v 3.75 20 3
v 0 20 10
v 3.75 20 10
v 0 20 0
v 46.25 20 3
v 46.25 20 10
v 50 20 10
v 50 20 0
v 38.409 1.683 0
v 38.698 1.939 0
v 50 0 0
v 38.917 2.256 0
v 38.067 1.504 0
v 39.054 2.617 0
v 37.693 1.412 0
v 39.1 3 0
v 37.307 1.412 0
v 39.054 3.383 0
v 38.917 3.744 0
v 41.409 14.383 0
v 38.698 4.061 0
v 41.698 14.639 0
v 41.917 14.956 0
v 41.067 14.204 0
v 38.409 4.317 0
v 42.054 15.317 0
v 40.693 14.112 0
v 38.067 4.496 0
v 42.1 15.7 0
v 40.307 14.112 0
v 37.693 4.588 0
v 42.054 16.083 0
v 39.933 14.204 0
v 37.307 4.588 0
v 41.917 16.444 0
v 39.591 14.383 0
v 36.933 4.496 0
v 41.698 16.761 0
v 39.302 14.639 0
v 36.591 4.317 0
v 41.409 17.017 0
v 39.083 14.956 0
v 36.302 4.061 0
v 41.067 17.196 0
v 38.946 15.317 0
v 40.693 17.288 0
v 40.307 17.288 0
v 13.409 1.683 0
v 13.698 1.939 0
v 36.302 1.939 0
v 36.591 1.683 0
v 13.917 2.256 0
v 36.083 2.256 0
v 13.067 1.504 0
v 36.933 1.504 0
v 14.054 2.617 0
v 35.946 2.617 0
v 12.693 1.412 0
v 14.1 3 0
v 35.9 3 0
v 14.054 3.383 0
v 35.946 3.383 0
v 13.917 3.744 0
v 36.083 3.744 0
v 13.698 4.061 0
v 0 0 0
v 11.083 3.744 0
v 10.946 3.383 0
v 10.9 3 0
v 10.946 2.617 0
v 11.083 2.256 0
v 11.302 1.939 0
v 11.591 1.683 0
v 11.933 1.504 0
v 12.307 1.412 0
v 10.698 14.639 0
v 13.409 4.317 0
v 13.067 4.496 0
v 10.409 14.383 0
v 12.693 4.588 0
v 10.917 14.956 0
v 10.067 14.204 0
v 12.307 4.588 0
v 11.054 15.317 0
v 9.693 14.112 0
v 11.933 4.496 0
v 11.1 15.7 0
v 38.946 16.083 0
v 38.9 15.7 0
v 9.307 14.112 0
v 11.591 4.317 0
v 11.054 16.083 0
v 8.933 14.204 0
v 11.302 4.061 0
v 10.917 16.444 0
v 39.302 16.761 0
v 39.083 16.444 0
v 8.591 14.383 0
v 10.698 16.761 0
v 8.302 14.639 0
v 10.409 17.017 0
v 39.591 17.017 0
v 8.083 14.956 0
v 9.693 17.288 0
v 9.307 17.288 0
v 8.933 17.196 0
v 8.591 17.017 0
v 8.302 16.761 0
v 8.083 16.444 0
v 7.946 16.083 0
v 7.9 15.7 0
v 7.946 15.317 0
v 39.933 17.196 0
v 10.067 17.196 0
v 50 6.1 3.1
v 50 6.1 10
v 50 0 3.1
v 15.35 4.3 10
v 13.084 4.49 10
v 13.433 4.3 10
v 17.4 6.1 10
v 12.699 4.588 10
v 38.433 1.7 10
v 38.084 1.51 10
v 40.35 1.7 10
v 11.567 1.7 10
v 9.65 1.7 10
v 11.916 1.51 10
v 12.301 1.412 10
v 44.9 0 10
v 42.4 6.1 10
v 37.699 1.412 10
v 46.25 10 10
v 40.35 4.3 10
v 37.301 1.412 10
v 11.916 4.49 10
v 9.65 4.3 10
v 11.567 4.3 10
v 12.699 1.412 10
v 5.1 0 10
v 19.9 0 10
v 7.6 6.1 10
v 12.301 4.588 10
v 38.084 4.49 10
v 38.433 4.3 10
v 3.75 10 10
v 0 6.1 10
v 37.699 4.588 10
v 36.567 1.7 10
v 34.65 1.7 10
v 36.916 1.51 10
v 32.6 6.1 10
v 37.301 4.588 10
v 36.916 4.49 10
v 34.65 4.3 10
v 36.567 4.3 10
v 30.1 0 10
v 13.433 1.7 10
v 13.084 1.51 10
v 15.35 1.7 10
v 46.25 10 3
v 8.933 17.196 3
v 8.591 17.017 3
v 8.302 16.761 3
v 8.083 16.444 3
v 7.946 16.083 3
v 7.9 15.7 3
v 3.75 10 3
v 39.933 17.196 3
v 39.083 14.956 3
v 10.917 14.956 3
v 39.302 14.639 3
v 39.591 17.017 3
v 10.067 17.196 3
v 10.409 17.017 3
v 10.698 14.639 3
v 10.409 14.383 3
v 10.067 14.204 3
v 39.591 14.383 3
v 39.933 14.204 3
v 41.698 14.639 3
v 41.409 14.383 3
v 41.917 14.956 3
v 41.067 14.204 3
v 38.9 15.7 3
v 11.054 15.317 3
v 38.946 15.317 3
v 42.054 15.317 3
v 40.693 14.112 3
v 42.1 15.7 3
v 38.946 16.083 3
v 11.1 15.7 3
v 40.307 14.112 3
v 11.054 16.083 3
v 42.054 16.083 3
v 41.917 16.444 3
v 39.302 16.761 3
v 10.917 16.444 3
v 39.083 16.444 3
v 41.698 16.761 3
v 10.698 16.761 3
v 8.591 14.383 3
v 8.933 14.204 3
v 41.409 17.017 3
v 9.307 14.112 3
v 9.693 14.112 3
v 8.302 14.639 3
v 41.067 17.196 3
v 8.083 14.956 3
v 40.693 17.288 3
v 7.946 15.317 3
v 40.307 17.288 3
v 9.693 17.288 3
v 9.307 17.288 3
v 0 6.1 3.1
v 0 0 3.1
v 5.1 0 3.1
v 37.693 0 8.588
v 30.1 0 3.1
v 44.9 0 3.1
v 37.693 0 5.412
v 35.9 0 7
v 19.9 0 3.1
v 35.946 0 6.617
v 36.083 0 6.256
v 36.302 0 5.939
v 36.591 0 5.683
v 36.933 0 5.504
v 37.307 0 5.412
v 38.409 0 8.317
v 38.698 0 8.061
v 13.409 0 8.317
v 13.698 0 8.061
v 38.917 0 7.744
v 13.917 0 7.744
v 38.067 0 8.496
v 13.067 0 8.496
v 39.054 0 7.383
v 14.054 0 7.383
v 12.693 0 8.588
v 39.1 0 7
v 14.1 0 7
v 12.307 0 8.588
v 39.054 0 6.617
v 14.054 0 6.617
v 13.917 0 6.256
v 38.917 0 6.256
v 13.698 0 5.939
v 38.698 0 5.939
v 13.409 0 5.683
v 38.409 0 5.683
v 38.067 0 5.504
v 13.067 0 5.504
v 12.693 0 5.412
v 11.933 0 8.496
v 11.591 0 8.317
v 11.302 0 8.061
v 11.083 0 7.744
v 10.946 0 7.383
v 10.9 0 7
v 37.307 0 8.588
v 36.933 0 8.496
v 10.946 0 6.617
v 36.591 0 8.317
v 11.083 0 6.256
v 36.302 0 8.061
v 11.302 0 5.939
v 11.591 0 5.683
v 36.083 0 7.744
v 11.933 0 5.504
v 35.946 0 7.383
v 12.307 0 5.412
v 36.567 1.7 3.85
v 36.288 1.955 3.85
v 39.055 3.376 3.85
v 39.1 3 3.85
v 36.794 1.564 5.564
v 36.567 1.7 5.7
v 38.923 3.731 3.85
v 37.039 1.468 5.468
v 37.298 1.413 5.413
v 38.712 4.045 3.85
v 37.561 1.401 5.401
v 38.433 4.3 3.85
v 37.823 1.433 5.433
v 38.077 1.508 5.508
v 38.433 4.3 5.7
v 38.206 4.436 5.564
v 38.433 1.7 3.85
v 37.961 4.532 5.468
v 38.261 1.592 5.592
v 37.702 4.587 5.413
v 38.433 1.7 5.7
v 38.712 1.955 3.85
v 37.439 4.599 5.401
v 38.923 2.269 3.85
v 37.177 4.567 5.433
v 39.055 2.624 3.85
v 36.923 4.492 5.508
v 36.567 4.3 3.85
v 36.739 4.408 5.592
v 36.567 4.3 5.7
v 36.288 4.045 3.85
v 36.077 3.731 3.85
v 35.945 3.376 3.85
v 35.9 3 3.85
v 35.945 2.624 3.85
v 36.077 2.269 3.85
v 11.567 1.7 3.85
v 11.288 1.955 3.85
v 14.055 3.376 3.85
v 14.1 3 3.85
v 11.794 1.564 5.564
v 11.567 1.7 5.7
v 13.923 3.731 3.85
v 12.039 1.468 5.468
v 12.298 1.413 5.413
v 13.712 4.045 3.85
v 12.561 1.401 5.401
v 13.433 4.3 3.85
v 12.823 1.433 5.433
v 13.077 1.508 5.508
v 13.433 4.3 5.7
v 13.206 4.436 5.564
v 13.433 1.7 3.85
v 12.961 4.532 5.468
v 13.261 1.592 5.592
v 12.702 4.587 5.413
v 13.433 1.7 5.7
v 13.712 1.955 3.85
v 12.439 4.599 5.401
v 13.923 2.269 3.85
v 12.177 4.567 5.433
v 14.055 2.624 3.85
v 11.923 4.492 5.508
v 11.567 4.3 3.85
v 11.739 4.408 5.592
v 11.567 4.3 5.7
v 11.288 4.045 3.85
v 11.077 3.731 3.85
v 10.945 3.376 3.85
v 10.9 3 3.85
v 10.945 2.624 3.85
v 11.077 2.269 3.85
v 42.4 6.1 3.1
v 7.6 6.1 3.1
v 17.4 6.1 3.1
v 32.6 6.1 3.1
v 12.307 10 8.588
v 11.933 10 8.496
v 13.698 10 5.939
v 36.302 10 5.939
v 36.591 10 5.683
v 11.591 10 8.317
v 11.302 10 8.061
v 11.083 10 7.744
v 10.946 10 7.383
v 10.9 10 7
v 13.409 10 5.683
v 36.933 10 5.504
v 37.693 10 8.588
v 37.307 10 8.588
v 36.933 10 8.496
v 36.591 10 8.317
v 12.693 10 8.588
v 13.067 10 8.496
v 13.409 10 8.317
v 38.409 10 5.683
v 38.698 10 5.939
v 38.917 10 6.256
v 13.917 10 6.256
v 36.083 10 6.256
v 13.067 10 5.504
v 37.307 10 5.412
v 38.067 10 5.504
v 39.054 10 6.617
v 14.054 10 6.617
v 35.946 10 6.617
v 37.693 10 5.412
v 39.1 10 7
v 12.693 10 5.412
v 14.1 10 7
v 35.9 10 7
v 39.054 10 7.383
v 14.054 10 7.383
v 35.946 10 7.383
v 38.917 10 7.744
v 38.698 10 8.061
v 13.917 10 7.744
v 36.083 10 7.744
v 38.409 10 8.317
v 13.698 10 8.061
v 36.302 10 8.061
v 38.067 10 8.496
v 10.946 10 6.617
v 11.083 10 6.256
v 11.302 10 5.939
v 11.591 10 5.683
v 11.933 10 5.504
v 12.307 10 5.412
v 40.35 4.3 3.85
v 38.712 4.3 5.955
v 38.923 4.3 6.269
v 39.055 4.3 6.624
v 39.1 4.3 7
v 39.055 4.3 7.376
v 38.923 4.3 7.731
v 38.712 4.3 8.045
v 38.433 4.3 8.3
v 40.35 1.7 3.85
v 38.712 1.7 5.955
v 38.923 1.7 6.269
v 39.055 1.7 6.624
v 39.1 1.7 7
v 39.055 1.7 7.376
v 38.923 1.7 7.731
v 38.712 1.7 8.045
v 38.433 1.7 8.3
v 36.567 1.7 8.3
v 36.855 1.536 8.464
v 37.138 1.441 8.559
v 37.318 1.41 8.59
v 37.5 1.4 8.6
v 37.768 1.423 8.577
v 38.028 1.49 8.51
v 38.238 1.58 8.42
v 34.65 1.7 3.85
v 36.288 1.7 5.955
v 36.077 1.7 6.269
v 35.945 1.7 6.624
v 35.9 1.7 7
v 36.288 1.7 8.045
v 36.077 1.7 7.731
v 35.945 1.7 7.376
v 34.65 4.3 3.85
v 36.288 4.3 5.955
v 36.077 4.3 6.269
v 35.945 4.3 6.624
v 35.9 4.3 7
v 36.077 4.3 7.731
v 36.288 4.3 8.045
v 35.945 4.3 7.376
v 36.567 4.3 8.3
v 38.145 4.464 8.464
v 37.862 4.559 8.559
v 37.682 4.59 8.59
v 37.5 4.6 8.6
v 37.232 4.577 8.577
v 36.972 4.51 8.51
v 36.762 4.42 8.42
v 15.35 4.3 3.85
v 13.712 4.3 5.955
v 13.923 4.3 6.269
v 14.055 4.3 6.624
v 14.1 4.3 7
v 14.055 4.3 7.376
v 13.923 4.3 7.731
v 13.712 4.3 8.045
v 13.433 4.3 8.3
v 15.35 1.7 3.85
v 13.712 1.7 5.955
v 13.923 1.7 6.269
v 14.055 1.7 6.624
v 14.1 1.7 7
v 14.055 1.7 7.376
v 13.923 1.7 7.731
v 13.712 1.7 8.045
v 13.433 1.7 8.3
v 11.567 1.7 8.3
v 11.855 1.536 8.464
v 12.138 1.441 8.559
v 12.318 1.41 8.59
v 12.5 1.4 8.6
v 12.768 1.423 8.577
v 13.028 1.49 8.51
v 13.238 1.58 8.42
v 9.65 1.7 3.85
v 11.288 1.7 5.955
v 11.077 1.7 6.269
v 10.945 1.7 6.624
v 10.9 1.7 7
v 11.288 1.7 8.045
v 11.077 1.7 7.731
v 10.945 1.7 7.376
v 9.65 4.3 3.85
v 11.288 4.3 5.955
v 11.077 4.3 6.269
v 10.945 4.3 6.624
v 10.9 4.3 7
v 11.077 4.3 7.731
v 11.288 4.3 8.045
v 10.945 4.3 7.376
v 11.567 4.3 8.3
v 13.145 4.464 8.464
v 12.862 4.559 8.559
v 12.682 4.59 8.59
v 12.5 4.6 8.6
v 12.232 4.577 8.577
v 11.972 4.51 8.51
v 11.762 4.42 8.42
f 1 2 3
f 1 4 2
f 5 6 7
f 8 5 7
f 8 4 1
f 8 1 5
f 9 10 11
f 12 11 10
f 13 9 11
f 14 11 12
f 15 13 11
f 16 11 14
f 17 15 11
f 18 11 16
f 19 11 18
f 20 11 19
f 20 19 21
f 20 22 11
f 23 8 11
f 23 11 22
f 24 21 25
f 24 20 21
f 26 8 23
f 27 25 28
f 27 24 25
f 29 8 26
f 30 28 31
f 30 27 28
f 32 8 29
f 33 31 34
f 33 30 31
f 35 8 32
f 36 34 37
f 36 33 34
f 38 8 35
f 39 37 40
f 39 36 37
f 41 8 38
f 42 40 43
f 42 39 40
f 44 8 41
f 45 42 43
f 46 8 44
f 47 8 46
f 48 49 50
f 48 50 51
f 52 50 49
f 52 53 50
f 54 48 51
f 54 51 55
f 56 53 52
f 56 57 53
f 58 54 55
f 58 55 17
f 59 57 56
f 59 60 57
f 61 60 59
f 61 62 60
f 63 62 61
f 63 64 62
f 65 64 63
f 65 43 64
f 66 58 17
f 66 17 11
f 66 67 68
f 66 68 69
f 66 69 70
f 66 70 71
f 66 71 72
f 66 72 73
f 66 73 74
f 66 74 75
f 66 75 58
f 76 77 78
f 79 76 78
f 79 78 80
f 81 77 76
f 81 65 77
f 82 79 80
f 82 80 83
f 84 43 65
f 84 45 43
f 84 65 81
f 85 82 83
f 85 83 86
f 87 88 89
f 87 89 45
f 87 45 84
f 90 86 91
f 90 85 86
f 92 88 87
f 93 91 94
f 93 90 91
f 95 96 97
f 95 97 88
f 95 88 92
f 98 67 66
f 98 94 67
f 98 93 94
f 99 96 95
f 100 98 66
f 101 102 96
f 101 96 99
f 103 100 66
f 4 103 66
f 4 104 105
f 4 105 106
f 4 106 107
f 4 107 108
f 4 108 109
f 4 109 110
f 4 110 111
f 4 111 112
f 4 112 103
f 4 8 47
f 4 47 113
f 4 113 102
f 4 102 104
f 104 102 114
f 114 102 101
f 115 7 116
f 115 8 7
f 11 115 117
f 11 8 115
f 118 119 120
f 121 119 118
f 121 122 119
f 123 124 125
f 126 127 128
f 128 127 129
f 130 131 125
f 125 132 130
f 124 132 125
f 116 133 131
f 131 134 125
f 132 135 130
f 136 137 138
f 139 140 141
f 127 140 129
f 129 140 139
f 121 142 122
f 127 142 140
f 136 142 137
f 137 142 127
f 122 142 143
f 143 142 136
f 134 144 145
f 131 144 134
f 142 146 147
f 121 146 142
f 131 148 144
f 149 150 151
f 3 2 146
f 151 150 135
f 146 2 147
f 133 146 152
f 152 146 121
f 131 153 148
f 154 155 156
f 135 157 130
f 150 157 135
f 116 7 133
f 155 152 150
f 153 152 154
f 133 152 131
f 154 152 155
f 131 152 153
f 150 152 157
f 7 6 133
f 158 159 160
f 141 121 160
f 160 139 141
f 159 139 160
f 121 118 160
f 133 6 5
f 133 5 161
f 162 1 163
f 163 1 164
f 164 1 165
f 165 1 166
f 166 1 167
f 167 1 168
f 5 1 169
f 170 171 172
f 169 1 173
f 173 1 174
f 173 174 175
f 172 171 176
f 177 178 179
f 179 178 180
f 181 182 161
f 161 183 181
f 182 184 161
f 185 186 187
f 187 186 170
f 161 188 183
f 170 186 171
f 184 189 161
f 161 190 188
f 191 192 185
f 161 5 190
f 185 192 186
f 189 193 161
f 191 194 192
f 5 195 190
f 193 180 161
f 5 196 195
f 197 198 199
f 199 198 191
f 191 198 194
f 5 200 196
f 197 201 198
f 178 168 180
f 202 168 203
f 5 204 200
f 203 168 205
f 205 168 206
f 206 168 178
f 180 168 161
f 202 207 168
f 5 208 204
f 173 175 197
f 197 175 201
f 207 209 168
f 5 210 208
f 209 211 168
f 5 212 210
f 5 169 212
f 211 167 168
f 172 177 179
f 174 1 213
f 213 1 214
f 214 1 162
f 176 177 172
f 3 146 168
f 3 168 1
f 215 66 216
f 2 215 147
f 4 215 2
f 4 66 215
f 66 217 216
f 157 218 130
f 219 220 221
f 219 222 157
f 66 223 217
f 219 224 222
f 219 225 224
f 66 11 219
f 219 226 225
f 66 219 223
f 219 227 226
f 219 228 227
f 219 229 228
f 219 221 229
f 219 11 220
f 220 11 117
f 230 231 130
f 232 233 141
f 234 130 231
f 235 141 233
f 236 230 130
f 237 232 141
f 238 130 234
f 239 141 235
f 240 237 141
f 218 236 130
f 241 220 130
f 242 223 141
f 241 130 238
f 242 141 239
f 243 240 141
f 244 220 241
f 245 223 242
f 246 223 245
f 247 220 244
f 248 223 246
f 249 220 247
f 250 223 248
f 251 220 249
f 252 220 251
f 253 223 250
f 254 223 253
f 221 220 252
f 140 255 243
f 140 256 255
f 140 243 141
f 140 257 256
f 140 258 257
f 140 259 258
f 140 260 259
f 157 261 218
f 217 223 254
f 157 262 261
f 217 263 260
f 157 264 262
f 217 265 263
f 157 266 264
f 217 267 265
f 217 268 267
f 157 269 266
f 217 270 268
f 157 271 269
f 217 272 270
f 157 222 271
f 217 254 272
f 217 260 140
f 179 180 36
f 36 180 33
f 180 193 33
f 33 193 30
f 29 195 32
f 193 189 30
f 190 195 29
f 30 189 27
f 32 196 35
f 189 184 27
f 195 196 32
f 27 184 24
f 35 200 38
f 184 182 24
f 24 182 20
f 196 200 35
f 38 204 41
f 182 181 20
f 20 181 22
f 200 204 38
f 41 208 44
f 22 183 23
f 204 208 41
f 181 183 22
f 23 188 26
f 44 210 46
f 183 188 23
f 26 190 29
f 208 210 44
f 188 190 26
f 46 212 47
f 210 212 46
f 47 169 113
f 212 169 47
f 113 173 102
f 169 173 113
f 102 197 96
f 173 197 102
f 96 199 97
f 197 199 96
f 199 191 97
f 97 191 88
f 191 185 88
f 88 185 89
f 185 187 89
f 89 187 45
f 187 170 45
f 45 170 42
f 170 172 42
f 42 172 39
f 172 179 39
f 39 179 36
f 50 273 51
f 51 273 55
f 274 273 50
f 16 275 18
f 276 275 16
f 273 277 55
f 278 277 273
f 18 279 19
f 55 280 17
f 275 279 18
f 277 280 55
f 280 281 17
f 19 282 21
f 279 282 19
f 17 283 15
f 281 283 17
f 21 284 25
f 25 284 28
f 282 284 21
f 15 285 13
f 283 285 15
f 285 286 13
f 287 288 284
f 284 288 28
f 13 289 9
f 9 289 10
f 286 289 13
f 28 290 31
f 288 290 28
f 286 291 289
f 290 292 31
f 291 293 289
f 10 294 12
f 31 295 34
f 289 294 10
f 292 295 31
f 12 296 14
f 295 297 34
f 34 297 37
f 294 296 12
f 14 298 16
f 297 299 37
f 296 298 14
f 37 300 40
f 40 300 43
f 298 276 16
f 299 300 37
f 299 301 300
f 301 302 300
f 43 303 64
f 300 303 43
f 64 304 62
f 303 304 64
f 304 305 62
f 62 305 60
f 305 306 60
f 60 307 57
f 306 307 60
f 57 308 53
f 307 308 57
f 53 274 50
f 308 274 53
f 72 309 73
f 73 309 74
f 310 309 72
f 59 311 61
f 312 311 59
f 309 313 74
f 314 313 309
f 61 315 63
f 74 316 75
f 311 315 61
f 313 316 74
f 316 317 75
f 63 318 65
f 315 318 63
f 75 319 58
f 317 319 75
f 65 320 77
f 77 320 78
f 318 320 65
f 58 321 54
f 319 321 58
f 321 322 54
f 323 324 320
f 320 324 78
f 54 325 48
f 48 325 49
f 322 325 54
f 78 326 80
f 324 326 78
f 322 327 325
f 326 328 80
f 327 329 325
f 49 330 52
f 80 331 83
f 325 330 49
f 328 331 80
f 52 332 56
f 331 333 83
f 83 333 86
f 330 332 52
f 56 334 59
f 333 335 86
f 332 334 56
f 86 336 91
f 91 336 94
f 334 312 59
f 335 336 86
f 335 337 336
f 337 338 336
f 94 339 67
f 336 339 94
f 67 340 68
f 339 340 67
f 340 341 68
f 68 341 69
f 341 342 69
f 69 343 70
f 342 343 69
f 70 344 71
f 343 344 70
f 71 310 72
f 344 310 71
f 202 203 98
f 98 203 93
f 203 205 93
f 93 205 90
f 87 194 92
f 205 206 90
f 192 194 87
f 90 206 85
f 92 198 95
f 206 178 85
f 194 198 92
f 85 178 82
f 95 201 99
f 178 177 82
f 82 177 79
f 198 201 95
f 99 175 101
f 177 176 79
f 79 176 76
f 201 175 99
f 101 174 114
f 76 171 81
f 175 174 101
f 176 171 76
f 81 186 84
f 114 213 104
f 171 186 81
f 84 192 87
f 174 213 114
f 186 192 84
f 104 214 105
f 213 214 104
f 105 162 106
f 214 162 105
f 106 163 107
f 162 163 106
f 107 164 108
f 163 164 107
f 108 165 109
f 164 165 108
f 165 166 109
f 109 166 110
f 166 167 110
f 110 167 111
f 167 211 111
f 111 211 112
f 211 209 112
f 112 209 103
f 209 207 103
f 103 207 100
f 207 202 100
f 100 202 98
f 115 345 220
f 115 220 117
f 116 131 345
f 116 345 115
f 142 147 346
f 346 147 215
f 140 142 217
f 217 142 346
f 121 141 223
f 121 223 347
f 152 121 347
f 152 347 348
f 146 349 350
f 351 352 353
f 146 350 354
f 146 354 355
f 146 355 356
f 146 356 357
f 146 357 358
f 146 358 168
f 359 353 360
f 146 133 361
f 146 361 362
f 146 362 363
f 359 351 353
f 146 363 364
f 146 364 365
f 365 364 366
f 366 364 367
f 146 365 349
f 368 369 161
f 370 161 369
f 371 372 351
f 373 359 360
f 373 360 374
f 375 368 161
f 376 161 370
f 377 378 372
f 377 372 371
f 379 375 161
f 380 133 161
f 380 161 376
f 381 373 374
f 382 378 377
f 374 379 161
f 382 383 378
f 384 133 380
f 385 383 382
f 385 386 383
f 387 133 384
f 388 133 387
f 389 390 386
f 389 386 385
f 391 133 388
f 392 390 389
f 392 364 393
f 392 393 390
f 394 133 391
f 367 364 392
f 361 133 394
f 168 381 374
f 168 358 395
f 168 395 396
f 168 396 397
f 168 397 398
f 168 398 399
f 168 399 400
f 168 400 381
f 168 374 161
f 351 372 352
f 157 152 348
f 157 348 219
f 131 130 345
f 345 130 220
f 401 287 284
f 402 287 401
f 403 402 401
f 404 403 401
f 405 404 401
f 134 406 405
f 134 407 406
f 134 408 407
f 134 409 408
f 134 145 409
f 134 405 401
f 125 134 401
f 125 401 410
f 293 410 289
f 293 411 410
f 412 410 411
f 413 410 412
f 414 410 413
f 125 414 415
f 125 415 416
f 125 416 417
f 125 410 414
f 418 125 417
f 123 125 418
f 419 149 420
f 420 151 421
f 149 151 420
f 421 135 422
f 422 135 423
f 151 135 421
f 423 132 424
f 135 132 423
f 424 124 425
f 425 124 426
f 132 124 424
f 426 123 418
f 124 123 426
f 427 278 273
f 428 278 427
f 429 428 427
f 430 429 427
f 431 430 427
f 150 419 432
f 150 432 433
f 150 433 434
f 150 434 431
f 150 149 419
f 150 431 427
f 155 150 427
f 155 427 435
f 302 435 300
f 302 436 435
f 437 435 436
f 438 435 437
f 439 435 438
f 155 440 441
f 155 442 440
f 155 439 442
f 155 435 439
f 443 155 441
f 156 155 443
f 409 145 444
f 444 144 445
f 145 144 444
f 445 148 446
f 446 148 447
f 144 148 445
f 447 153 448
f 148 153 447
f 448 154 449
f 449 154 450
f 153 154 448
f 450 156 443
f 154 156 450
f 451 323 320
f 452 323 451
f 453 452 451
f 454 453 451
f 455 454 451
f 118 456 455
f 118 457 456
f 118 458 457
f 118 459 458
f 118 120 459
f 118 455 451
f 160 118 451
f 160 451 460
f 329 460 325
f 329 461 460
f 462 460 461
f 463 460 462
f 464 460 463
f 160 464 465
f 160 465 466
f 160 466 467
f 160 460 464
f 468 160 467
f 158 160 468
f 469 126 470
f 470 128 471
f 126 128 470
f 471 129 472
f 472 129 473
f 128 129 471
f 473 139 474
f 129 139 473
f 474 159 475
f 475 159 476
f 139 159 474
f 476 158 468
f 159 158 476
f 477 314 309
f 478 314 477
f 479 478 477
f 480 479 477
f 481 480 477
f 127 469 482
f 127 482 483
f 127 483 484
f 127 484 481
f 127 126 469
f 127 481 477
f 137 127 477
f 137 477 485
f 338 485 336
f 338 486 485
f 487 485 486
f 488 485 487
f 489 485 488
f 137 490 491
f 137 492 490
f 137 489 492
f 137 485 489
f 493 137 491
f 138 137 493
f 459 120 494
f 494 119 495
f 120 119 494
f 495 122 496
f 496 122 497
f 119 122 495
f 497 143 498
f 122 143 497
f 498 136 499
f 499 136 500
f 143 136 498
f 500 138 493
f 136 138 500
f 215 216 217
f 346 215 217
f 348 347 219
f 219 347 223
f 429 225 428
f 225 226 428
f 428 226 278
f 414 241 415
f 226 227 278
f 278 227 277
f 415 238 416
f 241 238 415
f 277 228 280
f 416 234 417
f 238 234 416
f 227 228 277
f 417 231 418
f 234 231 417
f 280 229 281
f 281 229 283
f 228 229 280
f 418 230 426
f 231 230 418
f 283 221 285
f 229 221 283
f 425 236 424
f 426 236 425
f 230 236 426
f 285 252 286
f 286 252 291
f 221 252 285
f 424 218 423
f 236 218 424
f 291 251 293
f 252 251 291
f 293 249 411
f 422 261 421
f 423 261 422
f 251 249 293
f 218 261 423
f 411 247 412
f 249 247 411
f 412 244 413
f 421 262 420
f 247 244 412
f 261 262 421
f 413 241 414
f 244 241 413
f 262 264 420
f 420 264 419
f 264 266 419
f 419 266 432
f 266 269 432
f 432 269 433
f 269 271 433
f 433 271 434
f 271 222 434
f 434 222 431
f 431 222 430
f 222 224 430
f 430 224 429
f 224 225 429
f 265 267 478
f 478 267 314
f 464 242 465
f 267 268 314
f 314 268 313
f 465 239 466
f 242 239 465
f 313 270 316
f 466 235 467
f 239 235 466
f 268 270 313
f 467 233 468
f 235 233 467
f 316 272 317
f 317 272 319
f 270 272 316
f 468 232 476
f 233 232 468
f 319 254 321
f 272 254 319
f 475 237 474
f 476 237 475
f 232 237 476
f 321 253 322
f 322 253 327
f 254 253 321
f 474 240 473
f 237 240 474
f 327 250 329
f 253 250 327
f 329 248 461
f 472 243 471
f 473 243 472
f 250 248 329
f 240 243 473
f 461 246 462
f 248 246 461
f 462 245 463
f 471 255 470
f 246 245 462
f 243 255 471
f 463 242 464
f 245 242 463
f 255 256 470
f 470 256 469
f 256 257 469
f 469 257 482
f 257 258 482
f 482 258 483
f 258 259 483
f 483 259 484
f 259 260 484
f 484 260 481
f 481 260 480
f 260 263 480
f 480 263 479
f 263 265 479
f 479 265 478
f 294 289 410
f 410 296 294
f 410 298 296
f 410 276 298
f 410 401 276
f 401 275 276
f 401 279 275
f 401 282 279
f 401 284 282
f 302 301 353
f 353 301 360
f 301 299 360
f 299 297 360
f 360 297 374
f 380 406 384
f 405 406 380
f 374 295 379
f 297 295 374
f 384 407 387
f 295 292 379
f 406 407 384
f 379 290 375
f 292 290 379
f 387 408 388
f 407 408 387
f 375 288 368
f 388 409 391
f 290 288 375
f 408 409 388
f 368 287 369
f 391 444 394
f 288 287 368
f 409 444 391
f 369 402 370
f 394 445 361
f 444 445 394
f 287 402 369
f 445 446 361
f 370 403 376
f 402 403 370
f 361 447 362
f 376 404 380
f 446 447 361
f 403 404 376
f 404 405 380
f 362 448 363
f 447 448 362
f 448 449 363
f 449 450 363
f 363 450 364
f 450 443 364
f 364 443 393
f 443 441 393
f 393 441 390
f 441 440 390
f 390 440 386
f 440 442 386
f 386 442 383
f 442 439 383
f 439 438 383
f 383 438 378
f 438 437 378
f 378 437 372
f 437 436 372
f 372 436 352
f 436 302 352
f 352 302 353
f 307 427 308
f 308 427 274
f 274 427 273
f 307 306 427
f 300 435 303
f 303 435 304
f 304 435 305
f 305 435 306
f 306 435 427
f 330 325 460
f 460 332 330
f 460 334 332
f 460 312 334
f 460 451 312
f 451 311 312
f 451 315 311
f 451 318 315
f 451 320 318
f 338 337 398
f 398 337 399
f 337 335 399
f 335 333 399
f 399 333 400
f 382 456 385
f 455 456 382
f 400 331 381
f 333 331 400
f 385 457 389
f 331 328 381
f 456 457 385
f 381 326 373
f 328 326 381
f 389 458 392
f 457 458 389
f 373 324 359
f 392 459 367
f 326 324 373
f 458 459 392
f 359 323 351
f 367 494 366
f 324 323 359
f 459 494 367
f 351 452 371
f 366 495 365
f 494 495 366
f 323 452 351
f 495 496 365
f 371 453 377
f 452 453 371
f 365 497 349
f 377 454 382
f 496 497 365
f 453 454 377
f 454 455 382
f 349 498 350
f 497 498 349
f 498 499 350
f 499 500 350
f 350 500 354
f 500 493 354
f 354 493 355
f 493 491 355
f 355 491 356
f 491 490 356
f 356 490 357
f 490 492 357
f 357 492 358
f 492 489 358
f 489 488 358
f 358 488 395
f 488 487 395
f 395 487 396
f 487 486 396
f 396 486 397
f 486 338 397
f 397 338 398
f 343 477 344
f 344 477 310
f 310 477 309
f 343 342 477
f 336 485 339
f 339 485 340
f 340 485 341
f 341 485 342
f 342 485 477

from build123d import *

# Parameters (mm, degrees)
SKETCH_W        = 50
SKETCH_H        = 20
PAD_DEPTH       = 10
SKETCH001_W     = 42.5
SKETCH001_H     = 10
POCKET_DEPTH    = 7
SKETCH002_R     = 1.6
POCKET001_DEPTH = 5
POCKET002_DEPTH = 6.9
SKETCH004_R     = 1.6
POCKET003_DEPTH = 10
SKETCH005_W     = 5.7
SKETCH005_H     = 2.6
POCKET004_DEPTH = 6.15
SKETCH006_R     = 1.6
POCKET005_DEPTH = 10


with BuildPart() as part:
    # Sketch → Pad (new body)
    with BuildSketch(Plane.XY):
        with Locations((25, 10)):
            Rectangle(SKETCH_W, SKETCH_H)
    extrude(amount=PAD_DEPTH)

    # Sketch001 (on Face6 of Pad) → Pocket (cut)
    with BuildSketch(Plane.XY.offset(10)):
        with Locations((25, 15)):
            Rectangle(SKETCH001_W, SKETCH001_H)
    extrude(amount=-POCKET_DEPTH, mode=Mode.SUBTRACT)

    # Sketch002 (on Face6 of Pocket) → Pocket001 (cut)
    with BuildSketch(Plane.XY.offset(3)):
        with Locations((9.5, 15.7)):
            Circle(SKETCH002_R)
        with Locations((40.5, 15.7)):
            Circle(SKETCH002_R)
    extrude(amount=-POCKET001_DEPTH, mode=Mode.SUBTRACT)

    # Sketch003 (on Face4 of Pocket001) → Pocket002 (cut)
    with BuildSketch(Plane.XY.offset(10)):
        Polygon((5.1, 0), (7.6, 6.1), (0, 6.1), (0, 0), align=None)
        Polygon((19.9, 0), (17.4, 6.1), (32.6, 6.1), (30.1, 0), align=None)
        Polygon((42.4, 6.1), (44.9, 0), (50, 0), (50, 6.1), align=None)
    extrude(amount=-POCKET002_DEPTH, mode=Mode.SUBTRACT)

    # Sketch004 (on Face4 of Pocket002) → Pocket003 (cut)
    with BuildSketch(Plane.XY.offset(10)):
        with Locations((12.5, 3)):
            Circle(SKETCH004_R)
        with Locations((37.5, 3)):
            Circle(SKETCH004_R)
    extrude(amount=-POCKET003_DEPTH, mode=Mode.SUBTRACT)

    # Sketch005 (on Face4 of Pocket003) → Pocket004 (cut)
    with BuildSketch(Plane.XY.offset(10)):
        with Locations((12.5, 3)):
            Rectangle(SKETCH005_W, SKETCH005_H)
        with Locations((37.5, 3)):
            Rectangle(SKETCH005_W, SKETCH005_H)
    extrude(amount=-POCKET004_DEPTH, mode=Mode.SUBTRACT)

    # Sketch006 (on Face9 of Pocket004) → Pocket005 (cut)
    with BuildSketch(Plane.XZ):
        with Locations((12.5, 7)):
            Circle(SKETCH006_R)
        with Locations((37.5, 7)):
            Circle(SKETCH006_R)
    extrude(amount=-POCKET005_DEPTH, mode=Mode.SUBTRACT)


solid = part.part
